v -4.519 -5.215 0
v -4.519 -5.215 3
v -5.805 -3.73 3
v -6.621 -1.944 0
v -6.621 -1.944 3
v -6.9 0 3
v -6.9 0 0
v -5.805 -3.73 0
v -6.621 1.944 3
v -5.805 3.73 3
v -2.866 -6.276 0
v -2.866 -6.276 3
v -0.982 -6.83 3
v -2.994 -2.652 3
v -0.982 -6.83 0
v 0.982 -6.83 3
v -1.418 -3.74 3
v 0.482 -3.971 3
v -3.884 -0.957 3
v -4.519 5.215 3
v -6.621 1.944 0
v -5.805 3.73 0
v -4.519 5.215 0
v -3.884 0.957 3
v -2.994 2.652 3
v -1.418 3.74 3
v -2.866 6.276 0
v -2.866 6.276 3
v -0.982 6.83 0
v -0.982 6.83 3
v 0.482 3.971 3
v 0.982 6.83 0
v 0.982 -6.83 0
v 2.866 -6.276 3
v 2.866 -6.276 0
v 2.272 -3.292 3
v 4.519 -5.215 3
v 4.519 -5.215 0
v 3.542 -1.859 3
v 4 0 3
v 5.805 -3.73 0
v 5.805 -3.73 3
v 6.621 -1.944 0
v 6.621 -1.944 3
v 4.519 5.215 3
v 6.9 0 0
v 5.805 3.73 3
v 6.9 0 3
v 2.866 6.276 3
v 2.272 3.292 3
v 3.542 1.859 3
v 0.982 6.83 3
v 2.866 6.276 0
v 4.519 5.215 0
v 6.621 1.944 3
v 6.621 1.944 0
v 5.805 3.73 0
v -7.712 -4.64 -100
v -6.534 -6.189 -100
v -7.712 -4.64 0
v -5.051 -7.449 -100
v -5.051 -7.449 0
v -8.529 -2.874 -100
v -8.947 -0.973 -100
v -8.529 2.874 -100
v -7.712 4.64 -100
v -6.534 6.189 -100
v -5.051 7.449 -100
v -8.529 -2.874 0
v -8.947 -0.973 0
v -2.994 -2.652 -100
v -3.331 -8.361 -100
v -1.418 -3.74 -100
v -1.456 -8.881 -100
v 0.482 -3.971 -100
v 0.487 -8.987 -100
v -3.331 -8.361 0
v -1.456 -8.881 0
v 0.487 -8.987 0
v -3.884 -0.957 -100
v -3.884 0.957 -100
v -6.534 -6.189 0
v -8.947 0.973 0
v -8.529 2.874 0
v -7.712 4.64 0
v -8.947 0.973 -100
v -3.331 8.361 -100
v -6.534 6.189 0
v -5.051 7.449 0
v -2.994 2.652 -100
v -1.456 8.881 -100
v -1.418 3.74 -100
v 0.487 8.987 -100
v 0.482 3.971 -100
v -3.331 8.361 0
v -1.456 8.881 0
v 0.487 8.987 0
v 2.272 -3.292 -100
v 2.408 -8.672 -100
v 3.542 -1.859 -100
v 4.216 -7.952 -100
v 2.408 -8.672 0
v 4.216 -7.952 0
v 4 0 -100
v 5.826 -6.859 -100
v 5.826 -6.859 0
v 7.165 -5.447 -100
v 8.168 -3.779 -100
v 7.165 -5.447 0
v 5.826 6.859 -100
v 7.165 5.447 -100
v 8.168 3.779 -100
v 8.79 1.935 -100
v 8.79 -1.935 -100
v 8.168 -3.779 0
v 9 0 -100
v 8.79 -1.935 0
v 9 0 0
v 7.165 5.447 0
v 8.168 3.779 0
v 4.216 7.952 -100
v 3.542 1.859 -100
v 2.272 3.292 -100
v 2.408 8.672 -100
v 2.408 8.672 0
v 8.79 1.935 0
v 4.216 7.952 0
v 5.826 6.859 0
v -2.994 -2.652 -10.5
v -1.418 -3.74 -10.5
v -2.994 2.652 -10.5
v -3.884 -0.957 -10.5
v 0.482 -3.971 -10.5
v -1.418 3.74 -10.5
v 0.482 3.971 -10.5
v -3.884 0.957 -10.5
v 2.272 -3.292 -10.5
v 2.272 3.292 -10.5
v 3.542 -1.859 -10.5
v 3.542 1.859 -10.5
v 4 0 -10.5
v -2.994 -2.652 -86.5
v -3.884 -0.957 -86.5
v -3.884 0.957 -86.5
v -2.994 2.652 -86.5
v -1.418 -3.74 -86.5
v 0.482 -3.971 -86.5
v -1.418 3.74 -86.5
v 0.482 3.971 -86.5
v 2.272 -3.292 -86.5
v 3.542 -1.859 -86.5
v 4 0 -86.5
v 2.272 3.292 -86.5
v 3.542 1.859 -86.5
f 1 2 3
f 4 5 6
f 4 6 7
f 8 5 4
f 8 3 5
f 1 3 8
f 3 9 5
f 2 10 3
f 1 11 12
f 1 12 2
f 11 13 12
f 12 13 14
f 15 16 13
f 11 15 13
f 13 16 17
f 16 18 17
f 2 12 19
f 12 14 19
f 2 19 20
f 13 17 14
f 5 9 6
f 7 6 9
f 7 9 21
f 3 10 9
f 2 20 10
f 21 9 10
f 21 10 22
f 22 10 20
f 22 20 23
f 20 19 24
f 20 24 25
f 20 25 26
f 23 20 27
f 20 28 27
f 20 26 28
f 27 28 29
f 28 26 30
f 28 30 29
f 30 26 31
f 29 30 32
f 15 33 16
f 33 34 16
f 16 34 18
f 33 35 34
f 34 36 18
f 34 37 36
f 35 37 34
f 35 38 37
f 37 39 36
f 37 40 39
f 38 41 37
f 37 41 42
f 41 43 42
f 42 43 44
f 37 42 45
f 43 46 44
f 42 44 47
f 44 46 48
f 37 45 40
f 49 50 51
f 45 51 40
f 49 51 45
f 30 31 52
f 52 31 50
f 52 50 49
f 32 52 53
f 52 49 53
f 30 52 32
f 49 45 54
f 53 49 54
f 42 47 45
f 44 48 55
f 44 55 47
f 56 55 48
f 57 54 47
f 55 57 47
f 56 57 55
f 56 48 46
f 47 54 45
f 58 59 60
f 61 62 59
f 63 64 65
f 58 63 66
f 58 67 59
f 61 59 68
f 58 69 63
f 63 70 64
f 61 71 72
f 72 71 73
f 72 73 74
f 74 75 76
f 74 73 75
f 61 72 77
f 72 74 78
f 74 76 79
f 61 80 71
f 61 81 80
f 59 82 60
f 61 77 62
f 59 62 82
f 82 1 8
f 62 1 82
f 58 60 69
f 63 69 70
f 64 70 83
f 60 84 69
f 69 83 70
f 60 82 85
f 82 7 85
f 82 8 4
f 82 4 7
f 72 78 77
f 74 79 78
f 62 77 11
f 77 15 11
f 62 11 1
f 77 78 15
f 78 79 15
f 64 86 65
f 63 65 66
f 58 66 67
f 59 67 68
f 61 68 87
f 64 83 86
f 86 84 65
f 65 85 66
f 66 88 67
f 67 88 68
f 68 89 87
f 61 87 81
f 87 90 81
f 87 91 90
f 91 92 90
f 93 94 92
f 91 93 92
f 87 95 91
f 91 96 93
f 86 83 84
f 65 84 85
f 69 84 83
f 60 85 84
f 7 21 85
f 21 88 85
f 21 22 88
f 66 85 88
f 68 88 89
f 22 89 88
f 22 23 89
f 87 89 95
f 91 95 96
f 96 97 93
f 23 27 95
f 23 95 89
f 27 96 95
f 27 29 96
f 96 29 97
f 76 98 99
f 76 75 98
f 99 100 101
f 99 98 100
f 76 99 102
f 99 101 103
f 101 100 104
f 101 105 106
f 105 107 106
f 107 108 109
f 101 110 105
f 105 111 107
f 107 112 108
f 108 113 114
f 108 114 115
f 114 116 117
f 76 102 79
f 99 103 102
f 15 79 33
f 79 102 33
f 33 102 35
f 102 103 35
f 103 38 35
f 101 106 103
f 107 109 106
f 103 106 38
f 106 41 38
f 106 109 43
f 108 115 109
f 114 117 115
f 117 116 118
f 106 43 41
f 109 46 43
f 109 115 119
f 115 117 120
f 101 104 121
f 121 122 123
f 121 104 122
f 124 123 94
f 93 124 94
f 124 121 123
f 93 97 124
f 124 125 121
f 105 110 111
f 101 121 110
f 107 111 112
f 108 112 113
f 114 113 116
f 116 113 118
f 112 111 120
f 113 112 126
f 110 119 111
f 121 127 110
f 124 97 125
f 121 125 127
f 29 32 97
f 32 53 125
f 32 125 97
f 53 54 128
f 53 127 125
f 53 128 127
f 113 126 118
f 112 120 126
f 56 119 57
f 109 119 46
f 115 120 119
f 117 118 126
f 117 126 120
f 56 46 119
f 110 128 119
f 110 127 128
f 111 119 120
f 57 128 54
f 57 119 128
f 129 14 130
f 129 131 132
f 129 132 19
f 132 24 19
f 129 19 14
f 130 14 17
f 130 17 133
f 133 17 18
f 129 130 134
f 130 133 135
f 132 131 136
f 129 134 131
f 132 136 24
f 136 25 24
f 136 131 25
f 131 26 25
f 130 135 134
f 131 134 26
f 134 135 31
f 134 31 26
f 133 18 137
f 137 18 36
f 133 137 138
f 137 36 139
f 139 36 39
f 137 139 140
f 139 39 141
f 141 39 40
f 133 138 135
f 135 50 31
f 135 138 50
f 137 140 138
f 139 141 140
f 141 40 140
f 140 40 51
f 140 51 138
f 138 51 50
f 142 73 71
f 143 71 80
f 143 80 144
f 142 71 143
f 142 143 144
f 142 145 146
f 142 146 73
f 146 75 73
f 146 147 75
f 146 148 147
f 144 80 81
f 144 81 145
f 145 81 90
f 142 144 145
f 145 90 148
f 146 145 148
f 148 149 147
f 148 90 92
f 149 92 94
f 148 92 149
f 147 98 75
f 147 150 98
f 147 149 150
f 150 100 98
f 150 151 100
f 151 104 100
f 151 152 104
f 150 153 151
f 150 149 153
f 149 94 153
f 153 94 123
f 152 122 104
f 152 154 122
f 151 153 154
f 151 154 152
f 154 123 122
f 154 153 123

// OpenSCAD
difference(){
    union() {
        translate([0,0,1.5])
        cylinder(r=6.9, h=3, center=true);
        translate([0,0,-50])
            cylinder(r=9,h=100, center=true);
    }
    translate([0,0,-3.5])
        cylinder(r=4,h=14,center=true);
    translate([0,0,-93.5])
        cylinder(r=4,h=14,center=true);
}
